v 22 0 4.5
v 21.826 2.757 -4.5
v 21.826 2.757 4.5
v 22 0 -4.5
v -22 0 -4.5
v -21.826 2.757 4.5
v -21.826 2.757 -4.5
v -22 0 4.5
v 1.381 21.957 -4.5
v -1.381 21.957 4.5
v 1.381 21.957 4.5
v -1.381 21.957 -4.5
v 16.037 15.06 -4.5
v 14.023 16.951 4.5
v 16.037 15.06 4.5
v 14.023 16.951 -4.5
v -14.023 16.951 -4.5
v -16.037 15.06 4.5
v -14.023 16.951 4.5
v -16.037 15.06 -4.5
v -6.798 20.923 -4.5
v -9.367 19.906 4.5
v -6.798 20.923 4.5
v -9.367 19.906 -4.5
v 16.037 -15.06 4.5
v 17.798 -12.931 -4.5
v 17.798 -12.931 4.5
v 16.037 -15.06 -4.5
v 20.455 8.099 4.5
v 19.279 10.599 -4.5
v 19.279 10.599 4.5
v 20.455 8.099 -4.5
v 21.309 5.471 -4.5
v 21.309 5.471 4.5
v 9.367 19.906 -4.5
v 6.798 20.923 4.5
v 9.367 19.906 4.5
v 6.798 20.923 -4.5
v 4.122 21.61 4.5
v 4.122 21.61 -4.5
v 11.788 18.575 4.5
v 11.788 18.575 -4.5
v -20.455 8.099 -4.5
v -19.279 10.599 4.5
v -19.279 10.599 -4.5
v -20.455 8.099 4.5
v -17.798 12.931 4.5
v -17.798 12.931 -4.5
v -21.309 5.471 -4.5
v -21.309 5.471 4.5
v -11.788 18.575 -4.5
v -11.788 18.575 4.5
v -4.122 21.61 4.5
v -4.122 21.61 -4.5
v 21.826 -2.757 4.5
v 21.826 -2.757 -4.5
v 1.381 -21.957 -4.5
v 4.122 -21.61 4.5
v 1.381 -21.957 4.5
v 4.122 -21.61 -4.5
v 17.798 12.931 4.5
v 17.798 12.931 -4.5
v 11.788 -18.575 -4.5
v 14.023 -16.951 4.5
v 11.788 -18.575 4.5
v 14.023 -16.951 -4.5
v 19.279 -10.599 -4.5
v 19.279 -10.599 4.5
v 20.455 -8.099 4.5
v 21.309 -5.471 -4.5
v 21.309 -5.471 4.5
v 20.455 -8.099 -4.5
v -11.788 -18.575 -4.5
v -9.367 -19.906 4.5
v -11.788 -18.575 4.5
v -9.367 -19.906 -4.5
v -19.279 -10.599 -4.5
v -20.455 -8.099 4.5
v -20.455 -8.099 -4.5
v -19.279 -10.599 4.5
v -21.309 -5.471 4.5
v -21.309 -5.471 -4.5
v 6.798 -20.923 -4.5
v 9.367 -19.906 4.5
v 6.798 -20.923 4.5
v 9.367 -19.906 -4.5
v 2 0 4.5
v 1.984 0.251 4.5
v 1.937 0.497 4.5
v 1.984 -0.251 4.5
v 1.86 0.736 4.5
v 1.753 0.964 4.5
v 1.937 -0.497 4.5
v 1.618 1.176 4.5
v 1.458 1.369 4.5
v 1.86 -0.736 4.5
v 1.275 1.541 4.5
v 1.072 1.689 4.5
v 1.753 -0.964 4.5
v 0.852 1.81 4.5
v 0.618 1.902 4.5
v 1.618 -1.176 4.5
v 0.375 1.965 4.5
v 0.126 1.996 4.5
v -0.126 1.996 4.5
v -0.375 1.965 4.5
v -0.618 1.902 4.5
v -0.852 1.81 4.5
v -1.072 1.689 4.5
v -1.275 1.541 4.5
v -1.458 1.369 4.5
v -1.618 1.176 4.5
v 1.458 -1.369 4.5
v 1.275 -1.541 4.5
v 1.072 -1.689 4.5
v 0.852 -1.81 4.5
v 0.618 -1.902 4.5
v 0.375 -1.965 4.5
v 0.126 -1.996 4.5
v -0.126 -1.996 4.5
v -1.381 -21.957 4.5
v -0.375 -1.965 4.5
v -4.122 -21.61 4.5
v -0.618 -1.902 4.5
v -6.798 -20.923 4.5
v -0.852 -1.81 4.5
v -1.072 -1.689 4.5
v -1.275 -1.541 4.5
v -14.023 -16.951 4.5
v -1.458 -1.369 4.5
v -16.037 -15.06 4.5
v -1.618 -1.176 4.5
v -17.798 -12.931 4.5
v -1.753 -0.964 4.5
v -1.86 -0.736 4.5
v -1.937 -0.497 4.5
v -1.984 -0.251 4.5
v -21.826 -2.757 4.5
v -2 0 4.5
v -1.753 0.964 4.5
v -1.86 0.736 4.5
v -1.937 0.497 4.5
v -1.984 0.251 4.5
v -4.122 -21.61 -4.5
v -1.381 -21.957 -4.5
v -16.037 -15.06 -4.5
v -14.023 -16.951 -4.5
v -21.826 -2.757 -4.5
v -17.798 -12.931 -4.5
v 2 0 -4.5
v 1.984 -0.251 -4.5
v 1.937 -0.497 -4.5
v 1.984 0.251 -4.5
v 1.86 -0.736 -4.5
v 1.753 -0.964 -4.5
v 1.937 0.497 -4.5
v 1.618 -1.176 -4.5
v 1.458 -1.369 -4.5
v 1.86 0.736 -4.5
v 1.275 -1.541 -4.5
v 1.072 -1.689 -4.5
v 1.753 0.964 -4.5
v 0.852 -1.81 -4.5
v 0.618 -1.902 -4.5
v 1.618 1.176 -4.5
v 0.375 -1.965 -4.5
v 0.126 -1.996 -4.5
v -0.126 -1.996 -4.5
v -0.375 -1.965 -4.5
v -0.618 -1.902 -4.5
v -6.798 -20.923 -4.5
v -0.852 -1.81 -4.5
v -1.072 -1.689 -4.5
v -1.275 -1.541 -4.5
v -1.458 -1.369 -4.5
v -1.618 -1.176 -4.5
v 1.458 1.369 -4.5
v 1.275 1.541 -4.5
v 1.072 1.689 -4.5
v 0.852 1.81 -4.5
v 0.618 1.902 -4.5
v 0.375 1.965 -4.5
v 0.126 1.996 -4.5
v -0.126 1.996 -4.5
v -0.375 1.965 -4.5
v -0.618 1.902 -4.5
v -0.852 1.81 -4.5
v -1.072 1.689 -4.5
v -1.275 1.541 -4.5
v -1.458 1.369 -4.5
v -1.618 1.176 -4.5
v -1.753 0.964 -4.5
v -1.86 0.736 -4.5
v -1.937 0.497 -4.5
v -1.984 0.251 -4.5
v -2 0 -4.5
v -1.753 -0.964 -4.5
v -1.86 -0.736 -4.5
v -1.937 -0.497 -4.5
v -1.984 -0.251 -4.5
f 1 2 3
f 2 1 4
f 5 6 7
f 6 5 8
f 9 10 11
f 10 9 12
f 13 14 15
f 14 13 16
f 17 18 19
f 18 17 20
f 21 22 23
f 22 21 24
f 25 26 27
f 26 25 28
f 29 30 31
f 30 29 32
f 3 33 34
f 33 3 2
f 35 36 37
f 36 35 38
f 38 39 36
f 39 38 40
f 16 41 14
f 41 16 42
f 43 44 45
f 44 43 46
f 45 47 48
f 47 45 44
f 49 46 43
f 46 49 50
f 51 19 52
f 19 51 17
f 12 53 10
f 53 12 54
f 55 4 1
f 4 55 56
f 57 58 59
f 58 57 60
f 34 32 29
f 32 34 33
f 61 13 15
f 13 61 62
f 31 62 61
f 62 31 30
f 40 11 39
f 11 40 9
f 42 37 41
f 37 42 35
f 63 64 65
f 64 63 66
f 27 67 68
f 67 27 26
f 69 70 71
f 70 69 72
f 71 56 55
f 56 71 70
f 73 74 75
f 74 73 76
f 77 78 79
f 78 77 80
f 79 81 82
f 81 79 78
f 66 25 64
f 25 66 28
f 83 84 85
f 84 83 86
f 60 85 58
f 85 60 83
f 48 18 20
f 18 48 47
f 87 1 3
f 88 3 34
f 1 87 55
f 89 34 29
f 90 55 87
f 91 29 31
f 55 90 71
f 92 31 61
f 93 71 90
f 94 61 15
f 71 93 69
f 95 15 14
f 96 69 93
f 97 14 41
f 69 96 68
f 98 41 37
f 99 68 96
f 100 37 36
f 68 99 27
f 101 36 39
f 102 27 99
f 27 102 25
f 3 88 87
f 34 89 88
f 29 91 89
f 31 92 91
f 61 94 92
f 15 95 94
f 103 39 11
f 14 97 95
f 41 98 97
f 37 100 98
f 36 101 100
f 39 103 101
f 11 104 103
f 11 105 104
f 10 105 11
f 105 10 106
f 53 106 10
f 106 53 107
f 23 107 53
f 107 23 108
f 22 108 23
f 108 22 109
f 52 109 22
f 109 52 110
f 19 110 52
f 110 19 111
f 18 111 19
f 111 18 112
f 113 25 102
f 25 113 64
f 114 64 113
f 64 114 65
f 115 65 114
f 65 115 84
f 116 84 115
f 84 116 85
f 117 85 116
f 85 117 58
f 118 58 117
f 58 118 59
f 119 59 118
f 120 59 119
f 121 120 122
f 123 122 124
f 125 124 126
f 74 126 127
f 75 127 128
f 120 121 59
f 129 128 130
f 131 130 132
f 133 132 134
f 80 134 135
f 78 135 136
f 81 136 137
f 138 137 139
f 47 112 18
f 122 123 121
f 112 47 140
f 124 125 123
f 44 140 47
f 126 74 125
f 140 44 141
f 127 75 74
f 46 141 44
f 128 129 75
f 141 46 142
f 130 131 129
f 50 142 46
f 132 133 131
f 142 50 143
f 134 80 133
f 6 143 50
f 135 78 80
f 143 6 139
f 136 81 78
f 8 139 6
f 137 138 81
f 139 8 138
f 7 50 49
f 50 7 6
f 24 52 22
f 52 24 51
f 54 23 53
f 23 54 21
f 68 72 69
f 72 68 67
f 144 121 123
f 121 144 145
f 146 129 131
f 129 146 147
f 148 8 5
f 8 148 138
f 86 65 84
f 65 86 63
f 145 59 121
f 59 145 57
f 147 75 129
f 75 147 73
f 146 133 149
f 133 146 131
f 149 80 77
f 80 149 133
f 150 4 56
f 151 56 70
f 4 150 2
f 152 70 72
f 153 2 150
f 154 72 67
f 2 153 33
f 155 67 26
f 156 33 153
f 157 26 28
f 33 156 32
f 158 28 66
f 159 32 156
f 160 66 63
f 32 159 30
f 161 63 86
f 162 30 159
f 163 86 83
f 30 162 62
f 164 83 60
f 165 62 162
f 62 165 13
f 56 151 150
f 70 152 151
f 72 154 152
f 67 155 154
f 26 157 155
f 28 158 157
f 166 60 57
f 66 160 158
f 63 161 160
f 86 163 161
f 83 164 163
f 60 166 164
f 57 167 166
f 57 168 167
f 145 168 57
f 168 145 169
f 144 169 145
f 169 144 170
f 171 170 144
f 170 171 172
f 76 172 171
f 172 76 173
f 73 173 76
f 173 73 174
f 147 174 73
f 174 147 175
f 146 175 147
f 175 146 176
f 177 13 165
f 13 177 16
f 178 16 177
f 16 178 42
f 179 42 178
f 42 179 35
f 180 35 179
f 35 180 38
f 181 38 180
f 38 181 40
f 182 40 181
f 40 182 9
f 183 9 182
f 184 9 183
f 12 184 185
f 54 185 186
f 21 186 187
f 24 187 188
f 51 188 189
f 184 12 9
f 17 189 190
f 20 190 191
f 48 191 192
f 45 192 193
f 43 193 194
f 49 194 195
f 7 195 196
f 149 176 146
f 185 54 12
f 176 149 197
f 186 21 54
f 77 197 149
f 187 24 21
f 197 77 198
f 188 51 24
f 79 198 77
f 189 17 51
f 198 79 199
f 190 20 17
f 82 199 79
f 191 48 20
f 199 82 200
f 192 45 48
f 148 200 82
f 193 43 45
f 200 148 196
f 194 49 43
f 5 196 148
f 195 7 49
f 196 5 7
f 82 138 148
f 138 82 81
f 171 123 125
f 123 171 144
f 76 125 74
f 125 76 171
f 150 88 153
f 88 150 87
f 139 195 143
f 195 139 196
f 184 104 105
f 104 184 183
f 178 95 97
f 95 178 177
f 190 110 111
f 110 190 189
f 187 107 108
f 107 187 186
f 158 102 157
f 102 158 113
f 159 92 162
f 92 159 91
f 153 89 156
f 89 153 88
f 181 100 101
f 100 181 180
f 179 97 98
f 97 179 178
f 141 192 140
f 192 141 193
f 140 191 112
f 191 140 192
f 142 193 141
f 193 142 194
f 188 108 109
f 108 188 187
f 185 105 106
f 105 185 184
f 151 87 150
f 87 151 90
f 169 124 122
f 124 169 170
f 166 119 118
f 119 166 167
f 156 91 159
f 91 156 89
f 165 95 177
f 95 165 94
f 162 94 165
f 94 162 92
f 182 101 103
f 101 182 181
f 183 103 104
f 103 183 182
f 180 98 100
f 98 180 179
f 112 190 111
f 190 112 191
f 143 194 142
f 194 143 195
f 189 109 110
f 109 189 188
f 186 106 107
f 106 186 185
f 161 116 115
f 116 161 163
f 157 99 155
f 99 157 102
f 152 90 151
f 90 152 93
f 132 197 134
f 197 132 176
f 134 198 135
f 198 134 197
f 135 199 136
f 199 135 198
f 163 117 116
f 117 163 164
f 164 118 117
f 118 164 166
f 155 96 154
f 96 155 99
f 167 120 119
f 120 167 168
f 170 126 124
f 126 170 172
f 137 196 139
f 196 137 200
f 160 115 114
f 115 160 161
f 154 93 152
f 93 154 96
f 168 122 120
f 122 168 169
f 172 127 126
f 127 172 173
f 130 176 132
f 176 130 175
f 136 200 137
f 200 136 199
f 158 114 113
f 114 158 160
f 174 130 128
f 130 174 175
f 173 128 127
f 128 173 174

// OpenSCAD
$fn = 50;


difference() {
	union() {
		translate(v = [0, 0, -4.5000000000]) {
			cylinder(h = 9, r = 22.0000000000);
		}
	}
	union() {
		translate(v = [0, 0, -100.0000000000]) {
			cylinder(h = 200, r = 2.0000000000);
		}
	}
}
